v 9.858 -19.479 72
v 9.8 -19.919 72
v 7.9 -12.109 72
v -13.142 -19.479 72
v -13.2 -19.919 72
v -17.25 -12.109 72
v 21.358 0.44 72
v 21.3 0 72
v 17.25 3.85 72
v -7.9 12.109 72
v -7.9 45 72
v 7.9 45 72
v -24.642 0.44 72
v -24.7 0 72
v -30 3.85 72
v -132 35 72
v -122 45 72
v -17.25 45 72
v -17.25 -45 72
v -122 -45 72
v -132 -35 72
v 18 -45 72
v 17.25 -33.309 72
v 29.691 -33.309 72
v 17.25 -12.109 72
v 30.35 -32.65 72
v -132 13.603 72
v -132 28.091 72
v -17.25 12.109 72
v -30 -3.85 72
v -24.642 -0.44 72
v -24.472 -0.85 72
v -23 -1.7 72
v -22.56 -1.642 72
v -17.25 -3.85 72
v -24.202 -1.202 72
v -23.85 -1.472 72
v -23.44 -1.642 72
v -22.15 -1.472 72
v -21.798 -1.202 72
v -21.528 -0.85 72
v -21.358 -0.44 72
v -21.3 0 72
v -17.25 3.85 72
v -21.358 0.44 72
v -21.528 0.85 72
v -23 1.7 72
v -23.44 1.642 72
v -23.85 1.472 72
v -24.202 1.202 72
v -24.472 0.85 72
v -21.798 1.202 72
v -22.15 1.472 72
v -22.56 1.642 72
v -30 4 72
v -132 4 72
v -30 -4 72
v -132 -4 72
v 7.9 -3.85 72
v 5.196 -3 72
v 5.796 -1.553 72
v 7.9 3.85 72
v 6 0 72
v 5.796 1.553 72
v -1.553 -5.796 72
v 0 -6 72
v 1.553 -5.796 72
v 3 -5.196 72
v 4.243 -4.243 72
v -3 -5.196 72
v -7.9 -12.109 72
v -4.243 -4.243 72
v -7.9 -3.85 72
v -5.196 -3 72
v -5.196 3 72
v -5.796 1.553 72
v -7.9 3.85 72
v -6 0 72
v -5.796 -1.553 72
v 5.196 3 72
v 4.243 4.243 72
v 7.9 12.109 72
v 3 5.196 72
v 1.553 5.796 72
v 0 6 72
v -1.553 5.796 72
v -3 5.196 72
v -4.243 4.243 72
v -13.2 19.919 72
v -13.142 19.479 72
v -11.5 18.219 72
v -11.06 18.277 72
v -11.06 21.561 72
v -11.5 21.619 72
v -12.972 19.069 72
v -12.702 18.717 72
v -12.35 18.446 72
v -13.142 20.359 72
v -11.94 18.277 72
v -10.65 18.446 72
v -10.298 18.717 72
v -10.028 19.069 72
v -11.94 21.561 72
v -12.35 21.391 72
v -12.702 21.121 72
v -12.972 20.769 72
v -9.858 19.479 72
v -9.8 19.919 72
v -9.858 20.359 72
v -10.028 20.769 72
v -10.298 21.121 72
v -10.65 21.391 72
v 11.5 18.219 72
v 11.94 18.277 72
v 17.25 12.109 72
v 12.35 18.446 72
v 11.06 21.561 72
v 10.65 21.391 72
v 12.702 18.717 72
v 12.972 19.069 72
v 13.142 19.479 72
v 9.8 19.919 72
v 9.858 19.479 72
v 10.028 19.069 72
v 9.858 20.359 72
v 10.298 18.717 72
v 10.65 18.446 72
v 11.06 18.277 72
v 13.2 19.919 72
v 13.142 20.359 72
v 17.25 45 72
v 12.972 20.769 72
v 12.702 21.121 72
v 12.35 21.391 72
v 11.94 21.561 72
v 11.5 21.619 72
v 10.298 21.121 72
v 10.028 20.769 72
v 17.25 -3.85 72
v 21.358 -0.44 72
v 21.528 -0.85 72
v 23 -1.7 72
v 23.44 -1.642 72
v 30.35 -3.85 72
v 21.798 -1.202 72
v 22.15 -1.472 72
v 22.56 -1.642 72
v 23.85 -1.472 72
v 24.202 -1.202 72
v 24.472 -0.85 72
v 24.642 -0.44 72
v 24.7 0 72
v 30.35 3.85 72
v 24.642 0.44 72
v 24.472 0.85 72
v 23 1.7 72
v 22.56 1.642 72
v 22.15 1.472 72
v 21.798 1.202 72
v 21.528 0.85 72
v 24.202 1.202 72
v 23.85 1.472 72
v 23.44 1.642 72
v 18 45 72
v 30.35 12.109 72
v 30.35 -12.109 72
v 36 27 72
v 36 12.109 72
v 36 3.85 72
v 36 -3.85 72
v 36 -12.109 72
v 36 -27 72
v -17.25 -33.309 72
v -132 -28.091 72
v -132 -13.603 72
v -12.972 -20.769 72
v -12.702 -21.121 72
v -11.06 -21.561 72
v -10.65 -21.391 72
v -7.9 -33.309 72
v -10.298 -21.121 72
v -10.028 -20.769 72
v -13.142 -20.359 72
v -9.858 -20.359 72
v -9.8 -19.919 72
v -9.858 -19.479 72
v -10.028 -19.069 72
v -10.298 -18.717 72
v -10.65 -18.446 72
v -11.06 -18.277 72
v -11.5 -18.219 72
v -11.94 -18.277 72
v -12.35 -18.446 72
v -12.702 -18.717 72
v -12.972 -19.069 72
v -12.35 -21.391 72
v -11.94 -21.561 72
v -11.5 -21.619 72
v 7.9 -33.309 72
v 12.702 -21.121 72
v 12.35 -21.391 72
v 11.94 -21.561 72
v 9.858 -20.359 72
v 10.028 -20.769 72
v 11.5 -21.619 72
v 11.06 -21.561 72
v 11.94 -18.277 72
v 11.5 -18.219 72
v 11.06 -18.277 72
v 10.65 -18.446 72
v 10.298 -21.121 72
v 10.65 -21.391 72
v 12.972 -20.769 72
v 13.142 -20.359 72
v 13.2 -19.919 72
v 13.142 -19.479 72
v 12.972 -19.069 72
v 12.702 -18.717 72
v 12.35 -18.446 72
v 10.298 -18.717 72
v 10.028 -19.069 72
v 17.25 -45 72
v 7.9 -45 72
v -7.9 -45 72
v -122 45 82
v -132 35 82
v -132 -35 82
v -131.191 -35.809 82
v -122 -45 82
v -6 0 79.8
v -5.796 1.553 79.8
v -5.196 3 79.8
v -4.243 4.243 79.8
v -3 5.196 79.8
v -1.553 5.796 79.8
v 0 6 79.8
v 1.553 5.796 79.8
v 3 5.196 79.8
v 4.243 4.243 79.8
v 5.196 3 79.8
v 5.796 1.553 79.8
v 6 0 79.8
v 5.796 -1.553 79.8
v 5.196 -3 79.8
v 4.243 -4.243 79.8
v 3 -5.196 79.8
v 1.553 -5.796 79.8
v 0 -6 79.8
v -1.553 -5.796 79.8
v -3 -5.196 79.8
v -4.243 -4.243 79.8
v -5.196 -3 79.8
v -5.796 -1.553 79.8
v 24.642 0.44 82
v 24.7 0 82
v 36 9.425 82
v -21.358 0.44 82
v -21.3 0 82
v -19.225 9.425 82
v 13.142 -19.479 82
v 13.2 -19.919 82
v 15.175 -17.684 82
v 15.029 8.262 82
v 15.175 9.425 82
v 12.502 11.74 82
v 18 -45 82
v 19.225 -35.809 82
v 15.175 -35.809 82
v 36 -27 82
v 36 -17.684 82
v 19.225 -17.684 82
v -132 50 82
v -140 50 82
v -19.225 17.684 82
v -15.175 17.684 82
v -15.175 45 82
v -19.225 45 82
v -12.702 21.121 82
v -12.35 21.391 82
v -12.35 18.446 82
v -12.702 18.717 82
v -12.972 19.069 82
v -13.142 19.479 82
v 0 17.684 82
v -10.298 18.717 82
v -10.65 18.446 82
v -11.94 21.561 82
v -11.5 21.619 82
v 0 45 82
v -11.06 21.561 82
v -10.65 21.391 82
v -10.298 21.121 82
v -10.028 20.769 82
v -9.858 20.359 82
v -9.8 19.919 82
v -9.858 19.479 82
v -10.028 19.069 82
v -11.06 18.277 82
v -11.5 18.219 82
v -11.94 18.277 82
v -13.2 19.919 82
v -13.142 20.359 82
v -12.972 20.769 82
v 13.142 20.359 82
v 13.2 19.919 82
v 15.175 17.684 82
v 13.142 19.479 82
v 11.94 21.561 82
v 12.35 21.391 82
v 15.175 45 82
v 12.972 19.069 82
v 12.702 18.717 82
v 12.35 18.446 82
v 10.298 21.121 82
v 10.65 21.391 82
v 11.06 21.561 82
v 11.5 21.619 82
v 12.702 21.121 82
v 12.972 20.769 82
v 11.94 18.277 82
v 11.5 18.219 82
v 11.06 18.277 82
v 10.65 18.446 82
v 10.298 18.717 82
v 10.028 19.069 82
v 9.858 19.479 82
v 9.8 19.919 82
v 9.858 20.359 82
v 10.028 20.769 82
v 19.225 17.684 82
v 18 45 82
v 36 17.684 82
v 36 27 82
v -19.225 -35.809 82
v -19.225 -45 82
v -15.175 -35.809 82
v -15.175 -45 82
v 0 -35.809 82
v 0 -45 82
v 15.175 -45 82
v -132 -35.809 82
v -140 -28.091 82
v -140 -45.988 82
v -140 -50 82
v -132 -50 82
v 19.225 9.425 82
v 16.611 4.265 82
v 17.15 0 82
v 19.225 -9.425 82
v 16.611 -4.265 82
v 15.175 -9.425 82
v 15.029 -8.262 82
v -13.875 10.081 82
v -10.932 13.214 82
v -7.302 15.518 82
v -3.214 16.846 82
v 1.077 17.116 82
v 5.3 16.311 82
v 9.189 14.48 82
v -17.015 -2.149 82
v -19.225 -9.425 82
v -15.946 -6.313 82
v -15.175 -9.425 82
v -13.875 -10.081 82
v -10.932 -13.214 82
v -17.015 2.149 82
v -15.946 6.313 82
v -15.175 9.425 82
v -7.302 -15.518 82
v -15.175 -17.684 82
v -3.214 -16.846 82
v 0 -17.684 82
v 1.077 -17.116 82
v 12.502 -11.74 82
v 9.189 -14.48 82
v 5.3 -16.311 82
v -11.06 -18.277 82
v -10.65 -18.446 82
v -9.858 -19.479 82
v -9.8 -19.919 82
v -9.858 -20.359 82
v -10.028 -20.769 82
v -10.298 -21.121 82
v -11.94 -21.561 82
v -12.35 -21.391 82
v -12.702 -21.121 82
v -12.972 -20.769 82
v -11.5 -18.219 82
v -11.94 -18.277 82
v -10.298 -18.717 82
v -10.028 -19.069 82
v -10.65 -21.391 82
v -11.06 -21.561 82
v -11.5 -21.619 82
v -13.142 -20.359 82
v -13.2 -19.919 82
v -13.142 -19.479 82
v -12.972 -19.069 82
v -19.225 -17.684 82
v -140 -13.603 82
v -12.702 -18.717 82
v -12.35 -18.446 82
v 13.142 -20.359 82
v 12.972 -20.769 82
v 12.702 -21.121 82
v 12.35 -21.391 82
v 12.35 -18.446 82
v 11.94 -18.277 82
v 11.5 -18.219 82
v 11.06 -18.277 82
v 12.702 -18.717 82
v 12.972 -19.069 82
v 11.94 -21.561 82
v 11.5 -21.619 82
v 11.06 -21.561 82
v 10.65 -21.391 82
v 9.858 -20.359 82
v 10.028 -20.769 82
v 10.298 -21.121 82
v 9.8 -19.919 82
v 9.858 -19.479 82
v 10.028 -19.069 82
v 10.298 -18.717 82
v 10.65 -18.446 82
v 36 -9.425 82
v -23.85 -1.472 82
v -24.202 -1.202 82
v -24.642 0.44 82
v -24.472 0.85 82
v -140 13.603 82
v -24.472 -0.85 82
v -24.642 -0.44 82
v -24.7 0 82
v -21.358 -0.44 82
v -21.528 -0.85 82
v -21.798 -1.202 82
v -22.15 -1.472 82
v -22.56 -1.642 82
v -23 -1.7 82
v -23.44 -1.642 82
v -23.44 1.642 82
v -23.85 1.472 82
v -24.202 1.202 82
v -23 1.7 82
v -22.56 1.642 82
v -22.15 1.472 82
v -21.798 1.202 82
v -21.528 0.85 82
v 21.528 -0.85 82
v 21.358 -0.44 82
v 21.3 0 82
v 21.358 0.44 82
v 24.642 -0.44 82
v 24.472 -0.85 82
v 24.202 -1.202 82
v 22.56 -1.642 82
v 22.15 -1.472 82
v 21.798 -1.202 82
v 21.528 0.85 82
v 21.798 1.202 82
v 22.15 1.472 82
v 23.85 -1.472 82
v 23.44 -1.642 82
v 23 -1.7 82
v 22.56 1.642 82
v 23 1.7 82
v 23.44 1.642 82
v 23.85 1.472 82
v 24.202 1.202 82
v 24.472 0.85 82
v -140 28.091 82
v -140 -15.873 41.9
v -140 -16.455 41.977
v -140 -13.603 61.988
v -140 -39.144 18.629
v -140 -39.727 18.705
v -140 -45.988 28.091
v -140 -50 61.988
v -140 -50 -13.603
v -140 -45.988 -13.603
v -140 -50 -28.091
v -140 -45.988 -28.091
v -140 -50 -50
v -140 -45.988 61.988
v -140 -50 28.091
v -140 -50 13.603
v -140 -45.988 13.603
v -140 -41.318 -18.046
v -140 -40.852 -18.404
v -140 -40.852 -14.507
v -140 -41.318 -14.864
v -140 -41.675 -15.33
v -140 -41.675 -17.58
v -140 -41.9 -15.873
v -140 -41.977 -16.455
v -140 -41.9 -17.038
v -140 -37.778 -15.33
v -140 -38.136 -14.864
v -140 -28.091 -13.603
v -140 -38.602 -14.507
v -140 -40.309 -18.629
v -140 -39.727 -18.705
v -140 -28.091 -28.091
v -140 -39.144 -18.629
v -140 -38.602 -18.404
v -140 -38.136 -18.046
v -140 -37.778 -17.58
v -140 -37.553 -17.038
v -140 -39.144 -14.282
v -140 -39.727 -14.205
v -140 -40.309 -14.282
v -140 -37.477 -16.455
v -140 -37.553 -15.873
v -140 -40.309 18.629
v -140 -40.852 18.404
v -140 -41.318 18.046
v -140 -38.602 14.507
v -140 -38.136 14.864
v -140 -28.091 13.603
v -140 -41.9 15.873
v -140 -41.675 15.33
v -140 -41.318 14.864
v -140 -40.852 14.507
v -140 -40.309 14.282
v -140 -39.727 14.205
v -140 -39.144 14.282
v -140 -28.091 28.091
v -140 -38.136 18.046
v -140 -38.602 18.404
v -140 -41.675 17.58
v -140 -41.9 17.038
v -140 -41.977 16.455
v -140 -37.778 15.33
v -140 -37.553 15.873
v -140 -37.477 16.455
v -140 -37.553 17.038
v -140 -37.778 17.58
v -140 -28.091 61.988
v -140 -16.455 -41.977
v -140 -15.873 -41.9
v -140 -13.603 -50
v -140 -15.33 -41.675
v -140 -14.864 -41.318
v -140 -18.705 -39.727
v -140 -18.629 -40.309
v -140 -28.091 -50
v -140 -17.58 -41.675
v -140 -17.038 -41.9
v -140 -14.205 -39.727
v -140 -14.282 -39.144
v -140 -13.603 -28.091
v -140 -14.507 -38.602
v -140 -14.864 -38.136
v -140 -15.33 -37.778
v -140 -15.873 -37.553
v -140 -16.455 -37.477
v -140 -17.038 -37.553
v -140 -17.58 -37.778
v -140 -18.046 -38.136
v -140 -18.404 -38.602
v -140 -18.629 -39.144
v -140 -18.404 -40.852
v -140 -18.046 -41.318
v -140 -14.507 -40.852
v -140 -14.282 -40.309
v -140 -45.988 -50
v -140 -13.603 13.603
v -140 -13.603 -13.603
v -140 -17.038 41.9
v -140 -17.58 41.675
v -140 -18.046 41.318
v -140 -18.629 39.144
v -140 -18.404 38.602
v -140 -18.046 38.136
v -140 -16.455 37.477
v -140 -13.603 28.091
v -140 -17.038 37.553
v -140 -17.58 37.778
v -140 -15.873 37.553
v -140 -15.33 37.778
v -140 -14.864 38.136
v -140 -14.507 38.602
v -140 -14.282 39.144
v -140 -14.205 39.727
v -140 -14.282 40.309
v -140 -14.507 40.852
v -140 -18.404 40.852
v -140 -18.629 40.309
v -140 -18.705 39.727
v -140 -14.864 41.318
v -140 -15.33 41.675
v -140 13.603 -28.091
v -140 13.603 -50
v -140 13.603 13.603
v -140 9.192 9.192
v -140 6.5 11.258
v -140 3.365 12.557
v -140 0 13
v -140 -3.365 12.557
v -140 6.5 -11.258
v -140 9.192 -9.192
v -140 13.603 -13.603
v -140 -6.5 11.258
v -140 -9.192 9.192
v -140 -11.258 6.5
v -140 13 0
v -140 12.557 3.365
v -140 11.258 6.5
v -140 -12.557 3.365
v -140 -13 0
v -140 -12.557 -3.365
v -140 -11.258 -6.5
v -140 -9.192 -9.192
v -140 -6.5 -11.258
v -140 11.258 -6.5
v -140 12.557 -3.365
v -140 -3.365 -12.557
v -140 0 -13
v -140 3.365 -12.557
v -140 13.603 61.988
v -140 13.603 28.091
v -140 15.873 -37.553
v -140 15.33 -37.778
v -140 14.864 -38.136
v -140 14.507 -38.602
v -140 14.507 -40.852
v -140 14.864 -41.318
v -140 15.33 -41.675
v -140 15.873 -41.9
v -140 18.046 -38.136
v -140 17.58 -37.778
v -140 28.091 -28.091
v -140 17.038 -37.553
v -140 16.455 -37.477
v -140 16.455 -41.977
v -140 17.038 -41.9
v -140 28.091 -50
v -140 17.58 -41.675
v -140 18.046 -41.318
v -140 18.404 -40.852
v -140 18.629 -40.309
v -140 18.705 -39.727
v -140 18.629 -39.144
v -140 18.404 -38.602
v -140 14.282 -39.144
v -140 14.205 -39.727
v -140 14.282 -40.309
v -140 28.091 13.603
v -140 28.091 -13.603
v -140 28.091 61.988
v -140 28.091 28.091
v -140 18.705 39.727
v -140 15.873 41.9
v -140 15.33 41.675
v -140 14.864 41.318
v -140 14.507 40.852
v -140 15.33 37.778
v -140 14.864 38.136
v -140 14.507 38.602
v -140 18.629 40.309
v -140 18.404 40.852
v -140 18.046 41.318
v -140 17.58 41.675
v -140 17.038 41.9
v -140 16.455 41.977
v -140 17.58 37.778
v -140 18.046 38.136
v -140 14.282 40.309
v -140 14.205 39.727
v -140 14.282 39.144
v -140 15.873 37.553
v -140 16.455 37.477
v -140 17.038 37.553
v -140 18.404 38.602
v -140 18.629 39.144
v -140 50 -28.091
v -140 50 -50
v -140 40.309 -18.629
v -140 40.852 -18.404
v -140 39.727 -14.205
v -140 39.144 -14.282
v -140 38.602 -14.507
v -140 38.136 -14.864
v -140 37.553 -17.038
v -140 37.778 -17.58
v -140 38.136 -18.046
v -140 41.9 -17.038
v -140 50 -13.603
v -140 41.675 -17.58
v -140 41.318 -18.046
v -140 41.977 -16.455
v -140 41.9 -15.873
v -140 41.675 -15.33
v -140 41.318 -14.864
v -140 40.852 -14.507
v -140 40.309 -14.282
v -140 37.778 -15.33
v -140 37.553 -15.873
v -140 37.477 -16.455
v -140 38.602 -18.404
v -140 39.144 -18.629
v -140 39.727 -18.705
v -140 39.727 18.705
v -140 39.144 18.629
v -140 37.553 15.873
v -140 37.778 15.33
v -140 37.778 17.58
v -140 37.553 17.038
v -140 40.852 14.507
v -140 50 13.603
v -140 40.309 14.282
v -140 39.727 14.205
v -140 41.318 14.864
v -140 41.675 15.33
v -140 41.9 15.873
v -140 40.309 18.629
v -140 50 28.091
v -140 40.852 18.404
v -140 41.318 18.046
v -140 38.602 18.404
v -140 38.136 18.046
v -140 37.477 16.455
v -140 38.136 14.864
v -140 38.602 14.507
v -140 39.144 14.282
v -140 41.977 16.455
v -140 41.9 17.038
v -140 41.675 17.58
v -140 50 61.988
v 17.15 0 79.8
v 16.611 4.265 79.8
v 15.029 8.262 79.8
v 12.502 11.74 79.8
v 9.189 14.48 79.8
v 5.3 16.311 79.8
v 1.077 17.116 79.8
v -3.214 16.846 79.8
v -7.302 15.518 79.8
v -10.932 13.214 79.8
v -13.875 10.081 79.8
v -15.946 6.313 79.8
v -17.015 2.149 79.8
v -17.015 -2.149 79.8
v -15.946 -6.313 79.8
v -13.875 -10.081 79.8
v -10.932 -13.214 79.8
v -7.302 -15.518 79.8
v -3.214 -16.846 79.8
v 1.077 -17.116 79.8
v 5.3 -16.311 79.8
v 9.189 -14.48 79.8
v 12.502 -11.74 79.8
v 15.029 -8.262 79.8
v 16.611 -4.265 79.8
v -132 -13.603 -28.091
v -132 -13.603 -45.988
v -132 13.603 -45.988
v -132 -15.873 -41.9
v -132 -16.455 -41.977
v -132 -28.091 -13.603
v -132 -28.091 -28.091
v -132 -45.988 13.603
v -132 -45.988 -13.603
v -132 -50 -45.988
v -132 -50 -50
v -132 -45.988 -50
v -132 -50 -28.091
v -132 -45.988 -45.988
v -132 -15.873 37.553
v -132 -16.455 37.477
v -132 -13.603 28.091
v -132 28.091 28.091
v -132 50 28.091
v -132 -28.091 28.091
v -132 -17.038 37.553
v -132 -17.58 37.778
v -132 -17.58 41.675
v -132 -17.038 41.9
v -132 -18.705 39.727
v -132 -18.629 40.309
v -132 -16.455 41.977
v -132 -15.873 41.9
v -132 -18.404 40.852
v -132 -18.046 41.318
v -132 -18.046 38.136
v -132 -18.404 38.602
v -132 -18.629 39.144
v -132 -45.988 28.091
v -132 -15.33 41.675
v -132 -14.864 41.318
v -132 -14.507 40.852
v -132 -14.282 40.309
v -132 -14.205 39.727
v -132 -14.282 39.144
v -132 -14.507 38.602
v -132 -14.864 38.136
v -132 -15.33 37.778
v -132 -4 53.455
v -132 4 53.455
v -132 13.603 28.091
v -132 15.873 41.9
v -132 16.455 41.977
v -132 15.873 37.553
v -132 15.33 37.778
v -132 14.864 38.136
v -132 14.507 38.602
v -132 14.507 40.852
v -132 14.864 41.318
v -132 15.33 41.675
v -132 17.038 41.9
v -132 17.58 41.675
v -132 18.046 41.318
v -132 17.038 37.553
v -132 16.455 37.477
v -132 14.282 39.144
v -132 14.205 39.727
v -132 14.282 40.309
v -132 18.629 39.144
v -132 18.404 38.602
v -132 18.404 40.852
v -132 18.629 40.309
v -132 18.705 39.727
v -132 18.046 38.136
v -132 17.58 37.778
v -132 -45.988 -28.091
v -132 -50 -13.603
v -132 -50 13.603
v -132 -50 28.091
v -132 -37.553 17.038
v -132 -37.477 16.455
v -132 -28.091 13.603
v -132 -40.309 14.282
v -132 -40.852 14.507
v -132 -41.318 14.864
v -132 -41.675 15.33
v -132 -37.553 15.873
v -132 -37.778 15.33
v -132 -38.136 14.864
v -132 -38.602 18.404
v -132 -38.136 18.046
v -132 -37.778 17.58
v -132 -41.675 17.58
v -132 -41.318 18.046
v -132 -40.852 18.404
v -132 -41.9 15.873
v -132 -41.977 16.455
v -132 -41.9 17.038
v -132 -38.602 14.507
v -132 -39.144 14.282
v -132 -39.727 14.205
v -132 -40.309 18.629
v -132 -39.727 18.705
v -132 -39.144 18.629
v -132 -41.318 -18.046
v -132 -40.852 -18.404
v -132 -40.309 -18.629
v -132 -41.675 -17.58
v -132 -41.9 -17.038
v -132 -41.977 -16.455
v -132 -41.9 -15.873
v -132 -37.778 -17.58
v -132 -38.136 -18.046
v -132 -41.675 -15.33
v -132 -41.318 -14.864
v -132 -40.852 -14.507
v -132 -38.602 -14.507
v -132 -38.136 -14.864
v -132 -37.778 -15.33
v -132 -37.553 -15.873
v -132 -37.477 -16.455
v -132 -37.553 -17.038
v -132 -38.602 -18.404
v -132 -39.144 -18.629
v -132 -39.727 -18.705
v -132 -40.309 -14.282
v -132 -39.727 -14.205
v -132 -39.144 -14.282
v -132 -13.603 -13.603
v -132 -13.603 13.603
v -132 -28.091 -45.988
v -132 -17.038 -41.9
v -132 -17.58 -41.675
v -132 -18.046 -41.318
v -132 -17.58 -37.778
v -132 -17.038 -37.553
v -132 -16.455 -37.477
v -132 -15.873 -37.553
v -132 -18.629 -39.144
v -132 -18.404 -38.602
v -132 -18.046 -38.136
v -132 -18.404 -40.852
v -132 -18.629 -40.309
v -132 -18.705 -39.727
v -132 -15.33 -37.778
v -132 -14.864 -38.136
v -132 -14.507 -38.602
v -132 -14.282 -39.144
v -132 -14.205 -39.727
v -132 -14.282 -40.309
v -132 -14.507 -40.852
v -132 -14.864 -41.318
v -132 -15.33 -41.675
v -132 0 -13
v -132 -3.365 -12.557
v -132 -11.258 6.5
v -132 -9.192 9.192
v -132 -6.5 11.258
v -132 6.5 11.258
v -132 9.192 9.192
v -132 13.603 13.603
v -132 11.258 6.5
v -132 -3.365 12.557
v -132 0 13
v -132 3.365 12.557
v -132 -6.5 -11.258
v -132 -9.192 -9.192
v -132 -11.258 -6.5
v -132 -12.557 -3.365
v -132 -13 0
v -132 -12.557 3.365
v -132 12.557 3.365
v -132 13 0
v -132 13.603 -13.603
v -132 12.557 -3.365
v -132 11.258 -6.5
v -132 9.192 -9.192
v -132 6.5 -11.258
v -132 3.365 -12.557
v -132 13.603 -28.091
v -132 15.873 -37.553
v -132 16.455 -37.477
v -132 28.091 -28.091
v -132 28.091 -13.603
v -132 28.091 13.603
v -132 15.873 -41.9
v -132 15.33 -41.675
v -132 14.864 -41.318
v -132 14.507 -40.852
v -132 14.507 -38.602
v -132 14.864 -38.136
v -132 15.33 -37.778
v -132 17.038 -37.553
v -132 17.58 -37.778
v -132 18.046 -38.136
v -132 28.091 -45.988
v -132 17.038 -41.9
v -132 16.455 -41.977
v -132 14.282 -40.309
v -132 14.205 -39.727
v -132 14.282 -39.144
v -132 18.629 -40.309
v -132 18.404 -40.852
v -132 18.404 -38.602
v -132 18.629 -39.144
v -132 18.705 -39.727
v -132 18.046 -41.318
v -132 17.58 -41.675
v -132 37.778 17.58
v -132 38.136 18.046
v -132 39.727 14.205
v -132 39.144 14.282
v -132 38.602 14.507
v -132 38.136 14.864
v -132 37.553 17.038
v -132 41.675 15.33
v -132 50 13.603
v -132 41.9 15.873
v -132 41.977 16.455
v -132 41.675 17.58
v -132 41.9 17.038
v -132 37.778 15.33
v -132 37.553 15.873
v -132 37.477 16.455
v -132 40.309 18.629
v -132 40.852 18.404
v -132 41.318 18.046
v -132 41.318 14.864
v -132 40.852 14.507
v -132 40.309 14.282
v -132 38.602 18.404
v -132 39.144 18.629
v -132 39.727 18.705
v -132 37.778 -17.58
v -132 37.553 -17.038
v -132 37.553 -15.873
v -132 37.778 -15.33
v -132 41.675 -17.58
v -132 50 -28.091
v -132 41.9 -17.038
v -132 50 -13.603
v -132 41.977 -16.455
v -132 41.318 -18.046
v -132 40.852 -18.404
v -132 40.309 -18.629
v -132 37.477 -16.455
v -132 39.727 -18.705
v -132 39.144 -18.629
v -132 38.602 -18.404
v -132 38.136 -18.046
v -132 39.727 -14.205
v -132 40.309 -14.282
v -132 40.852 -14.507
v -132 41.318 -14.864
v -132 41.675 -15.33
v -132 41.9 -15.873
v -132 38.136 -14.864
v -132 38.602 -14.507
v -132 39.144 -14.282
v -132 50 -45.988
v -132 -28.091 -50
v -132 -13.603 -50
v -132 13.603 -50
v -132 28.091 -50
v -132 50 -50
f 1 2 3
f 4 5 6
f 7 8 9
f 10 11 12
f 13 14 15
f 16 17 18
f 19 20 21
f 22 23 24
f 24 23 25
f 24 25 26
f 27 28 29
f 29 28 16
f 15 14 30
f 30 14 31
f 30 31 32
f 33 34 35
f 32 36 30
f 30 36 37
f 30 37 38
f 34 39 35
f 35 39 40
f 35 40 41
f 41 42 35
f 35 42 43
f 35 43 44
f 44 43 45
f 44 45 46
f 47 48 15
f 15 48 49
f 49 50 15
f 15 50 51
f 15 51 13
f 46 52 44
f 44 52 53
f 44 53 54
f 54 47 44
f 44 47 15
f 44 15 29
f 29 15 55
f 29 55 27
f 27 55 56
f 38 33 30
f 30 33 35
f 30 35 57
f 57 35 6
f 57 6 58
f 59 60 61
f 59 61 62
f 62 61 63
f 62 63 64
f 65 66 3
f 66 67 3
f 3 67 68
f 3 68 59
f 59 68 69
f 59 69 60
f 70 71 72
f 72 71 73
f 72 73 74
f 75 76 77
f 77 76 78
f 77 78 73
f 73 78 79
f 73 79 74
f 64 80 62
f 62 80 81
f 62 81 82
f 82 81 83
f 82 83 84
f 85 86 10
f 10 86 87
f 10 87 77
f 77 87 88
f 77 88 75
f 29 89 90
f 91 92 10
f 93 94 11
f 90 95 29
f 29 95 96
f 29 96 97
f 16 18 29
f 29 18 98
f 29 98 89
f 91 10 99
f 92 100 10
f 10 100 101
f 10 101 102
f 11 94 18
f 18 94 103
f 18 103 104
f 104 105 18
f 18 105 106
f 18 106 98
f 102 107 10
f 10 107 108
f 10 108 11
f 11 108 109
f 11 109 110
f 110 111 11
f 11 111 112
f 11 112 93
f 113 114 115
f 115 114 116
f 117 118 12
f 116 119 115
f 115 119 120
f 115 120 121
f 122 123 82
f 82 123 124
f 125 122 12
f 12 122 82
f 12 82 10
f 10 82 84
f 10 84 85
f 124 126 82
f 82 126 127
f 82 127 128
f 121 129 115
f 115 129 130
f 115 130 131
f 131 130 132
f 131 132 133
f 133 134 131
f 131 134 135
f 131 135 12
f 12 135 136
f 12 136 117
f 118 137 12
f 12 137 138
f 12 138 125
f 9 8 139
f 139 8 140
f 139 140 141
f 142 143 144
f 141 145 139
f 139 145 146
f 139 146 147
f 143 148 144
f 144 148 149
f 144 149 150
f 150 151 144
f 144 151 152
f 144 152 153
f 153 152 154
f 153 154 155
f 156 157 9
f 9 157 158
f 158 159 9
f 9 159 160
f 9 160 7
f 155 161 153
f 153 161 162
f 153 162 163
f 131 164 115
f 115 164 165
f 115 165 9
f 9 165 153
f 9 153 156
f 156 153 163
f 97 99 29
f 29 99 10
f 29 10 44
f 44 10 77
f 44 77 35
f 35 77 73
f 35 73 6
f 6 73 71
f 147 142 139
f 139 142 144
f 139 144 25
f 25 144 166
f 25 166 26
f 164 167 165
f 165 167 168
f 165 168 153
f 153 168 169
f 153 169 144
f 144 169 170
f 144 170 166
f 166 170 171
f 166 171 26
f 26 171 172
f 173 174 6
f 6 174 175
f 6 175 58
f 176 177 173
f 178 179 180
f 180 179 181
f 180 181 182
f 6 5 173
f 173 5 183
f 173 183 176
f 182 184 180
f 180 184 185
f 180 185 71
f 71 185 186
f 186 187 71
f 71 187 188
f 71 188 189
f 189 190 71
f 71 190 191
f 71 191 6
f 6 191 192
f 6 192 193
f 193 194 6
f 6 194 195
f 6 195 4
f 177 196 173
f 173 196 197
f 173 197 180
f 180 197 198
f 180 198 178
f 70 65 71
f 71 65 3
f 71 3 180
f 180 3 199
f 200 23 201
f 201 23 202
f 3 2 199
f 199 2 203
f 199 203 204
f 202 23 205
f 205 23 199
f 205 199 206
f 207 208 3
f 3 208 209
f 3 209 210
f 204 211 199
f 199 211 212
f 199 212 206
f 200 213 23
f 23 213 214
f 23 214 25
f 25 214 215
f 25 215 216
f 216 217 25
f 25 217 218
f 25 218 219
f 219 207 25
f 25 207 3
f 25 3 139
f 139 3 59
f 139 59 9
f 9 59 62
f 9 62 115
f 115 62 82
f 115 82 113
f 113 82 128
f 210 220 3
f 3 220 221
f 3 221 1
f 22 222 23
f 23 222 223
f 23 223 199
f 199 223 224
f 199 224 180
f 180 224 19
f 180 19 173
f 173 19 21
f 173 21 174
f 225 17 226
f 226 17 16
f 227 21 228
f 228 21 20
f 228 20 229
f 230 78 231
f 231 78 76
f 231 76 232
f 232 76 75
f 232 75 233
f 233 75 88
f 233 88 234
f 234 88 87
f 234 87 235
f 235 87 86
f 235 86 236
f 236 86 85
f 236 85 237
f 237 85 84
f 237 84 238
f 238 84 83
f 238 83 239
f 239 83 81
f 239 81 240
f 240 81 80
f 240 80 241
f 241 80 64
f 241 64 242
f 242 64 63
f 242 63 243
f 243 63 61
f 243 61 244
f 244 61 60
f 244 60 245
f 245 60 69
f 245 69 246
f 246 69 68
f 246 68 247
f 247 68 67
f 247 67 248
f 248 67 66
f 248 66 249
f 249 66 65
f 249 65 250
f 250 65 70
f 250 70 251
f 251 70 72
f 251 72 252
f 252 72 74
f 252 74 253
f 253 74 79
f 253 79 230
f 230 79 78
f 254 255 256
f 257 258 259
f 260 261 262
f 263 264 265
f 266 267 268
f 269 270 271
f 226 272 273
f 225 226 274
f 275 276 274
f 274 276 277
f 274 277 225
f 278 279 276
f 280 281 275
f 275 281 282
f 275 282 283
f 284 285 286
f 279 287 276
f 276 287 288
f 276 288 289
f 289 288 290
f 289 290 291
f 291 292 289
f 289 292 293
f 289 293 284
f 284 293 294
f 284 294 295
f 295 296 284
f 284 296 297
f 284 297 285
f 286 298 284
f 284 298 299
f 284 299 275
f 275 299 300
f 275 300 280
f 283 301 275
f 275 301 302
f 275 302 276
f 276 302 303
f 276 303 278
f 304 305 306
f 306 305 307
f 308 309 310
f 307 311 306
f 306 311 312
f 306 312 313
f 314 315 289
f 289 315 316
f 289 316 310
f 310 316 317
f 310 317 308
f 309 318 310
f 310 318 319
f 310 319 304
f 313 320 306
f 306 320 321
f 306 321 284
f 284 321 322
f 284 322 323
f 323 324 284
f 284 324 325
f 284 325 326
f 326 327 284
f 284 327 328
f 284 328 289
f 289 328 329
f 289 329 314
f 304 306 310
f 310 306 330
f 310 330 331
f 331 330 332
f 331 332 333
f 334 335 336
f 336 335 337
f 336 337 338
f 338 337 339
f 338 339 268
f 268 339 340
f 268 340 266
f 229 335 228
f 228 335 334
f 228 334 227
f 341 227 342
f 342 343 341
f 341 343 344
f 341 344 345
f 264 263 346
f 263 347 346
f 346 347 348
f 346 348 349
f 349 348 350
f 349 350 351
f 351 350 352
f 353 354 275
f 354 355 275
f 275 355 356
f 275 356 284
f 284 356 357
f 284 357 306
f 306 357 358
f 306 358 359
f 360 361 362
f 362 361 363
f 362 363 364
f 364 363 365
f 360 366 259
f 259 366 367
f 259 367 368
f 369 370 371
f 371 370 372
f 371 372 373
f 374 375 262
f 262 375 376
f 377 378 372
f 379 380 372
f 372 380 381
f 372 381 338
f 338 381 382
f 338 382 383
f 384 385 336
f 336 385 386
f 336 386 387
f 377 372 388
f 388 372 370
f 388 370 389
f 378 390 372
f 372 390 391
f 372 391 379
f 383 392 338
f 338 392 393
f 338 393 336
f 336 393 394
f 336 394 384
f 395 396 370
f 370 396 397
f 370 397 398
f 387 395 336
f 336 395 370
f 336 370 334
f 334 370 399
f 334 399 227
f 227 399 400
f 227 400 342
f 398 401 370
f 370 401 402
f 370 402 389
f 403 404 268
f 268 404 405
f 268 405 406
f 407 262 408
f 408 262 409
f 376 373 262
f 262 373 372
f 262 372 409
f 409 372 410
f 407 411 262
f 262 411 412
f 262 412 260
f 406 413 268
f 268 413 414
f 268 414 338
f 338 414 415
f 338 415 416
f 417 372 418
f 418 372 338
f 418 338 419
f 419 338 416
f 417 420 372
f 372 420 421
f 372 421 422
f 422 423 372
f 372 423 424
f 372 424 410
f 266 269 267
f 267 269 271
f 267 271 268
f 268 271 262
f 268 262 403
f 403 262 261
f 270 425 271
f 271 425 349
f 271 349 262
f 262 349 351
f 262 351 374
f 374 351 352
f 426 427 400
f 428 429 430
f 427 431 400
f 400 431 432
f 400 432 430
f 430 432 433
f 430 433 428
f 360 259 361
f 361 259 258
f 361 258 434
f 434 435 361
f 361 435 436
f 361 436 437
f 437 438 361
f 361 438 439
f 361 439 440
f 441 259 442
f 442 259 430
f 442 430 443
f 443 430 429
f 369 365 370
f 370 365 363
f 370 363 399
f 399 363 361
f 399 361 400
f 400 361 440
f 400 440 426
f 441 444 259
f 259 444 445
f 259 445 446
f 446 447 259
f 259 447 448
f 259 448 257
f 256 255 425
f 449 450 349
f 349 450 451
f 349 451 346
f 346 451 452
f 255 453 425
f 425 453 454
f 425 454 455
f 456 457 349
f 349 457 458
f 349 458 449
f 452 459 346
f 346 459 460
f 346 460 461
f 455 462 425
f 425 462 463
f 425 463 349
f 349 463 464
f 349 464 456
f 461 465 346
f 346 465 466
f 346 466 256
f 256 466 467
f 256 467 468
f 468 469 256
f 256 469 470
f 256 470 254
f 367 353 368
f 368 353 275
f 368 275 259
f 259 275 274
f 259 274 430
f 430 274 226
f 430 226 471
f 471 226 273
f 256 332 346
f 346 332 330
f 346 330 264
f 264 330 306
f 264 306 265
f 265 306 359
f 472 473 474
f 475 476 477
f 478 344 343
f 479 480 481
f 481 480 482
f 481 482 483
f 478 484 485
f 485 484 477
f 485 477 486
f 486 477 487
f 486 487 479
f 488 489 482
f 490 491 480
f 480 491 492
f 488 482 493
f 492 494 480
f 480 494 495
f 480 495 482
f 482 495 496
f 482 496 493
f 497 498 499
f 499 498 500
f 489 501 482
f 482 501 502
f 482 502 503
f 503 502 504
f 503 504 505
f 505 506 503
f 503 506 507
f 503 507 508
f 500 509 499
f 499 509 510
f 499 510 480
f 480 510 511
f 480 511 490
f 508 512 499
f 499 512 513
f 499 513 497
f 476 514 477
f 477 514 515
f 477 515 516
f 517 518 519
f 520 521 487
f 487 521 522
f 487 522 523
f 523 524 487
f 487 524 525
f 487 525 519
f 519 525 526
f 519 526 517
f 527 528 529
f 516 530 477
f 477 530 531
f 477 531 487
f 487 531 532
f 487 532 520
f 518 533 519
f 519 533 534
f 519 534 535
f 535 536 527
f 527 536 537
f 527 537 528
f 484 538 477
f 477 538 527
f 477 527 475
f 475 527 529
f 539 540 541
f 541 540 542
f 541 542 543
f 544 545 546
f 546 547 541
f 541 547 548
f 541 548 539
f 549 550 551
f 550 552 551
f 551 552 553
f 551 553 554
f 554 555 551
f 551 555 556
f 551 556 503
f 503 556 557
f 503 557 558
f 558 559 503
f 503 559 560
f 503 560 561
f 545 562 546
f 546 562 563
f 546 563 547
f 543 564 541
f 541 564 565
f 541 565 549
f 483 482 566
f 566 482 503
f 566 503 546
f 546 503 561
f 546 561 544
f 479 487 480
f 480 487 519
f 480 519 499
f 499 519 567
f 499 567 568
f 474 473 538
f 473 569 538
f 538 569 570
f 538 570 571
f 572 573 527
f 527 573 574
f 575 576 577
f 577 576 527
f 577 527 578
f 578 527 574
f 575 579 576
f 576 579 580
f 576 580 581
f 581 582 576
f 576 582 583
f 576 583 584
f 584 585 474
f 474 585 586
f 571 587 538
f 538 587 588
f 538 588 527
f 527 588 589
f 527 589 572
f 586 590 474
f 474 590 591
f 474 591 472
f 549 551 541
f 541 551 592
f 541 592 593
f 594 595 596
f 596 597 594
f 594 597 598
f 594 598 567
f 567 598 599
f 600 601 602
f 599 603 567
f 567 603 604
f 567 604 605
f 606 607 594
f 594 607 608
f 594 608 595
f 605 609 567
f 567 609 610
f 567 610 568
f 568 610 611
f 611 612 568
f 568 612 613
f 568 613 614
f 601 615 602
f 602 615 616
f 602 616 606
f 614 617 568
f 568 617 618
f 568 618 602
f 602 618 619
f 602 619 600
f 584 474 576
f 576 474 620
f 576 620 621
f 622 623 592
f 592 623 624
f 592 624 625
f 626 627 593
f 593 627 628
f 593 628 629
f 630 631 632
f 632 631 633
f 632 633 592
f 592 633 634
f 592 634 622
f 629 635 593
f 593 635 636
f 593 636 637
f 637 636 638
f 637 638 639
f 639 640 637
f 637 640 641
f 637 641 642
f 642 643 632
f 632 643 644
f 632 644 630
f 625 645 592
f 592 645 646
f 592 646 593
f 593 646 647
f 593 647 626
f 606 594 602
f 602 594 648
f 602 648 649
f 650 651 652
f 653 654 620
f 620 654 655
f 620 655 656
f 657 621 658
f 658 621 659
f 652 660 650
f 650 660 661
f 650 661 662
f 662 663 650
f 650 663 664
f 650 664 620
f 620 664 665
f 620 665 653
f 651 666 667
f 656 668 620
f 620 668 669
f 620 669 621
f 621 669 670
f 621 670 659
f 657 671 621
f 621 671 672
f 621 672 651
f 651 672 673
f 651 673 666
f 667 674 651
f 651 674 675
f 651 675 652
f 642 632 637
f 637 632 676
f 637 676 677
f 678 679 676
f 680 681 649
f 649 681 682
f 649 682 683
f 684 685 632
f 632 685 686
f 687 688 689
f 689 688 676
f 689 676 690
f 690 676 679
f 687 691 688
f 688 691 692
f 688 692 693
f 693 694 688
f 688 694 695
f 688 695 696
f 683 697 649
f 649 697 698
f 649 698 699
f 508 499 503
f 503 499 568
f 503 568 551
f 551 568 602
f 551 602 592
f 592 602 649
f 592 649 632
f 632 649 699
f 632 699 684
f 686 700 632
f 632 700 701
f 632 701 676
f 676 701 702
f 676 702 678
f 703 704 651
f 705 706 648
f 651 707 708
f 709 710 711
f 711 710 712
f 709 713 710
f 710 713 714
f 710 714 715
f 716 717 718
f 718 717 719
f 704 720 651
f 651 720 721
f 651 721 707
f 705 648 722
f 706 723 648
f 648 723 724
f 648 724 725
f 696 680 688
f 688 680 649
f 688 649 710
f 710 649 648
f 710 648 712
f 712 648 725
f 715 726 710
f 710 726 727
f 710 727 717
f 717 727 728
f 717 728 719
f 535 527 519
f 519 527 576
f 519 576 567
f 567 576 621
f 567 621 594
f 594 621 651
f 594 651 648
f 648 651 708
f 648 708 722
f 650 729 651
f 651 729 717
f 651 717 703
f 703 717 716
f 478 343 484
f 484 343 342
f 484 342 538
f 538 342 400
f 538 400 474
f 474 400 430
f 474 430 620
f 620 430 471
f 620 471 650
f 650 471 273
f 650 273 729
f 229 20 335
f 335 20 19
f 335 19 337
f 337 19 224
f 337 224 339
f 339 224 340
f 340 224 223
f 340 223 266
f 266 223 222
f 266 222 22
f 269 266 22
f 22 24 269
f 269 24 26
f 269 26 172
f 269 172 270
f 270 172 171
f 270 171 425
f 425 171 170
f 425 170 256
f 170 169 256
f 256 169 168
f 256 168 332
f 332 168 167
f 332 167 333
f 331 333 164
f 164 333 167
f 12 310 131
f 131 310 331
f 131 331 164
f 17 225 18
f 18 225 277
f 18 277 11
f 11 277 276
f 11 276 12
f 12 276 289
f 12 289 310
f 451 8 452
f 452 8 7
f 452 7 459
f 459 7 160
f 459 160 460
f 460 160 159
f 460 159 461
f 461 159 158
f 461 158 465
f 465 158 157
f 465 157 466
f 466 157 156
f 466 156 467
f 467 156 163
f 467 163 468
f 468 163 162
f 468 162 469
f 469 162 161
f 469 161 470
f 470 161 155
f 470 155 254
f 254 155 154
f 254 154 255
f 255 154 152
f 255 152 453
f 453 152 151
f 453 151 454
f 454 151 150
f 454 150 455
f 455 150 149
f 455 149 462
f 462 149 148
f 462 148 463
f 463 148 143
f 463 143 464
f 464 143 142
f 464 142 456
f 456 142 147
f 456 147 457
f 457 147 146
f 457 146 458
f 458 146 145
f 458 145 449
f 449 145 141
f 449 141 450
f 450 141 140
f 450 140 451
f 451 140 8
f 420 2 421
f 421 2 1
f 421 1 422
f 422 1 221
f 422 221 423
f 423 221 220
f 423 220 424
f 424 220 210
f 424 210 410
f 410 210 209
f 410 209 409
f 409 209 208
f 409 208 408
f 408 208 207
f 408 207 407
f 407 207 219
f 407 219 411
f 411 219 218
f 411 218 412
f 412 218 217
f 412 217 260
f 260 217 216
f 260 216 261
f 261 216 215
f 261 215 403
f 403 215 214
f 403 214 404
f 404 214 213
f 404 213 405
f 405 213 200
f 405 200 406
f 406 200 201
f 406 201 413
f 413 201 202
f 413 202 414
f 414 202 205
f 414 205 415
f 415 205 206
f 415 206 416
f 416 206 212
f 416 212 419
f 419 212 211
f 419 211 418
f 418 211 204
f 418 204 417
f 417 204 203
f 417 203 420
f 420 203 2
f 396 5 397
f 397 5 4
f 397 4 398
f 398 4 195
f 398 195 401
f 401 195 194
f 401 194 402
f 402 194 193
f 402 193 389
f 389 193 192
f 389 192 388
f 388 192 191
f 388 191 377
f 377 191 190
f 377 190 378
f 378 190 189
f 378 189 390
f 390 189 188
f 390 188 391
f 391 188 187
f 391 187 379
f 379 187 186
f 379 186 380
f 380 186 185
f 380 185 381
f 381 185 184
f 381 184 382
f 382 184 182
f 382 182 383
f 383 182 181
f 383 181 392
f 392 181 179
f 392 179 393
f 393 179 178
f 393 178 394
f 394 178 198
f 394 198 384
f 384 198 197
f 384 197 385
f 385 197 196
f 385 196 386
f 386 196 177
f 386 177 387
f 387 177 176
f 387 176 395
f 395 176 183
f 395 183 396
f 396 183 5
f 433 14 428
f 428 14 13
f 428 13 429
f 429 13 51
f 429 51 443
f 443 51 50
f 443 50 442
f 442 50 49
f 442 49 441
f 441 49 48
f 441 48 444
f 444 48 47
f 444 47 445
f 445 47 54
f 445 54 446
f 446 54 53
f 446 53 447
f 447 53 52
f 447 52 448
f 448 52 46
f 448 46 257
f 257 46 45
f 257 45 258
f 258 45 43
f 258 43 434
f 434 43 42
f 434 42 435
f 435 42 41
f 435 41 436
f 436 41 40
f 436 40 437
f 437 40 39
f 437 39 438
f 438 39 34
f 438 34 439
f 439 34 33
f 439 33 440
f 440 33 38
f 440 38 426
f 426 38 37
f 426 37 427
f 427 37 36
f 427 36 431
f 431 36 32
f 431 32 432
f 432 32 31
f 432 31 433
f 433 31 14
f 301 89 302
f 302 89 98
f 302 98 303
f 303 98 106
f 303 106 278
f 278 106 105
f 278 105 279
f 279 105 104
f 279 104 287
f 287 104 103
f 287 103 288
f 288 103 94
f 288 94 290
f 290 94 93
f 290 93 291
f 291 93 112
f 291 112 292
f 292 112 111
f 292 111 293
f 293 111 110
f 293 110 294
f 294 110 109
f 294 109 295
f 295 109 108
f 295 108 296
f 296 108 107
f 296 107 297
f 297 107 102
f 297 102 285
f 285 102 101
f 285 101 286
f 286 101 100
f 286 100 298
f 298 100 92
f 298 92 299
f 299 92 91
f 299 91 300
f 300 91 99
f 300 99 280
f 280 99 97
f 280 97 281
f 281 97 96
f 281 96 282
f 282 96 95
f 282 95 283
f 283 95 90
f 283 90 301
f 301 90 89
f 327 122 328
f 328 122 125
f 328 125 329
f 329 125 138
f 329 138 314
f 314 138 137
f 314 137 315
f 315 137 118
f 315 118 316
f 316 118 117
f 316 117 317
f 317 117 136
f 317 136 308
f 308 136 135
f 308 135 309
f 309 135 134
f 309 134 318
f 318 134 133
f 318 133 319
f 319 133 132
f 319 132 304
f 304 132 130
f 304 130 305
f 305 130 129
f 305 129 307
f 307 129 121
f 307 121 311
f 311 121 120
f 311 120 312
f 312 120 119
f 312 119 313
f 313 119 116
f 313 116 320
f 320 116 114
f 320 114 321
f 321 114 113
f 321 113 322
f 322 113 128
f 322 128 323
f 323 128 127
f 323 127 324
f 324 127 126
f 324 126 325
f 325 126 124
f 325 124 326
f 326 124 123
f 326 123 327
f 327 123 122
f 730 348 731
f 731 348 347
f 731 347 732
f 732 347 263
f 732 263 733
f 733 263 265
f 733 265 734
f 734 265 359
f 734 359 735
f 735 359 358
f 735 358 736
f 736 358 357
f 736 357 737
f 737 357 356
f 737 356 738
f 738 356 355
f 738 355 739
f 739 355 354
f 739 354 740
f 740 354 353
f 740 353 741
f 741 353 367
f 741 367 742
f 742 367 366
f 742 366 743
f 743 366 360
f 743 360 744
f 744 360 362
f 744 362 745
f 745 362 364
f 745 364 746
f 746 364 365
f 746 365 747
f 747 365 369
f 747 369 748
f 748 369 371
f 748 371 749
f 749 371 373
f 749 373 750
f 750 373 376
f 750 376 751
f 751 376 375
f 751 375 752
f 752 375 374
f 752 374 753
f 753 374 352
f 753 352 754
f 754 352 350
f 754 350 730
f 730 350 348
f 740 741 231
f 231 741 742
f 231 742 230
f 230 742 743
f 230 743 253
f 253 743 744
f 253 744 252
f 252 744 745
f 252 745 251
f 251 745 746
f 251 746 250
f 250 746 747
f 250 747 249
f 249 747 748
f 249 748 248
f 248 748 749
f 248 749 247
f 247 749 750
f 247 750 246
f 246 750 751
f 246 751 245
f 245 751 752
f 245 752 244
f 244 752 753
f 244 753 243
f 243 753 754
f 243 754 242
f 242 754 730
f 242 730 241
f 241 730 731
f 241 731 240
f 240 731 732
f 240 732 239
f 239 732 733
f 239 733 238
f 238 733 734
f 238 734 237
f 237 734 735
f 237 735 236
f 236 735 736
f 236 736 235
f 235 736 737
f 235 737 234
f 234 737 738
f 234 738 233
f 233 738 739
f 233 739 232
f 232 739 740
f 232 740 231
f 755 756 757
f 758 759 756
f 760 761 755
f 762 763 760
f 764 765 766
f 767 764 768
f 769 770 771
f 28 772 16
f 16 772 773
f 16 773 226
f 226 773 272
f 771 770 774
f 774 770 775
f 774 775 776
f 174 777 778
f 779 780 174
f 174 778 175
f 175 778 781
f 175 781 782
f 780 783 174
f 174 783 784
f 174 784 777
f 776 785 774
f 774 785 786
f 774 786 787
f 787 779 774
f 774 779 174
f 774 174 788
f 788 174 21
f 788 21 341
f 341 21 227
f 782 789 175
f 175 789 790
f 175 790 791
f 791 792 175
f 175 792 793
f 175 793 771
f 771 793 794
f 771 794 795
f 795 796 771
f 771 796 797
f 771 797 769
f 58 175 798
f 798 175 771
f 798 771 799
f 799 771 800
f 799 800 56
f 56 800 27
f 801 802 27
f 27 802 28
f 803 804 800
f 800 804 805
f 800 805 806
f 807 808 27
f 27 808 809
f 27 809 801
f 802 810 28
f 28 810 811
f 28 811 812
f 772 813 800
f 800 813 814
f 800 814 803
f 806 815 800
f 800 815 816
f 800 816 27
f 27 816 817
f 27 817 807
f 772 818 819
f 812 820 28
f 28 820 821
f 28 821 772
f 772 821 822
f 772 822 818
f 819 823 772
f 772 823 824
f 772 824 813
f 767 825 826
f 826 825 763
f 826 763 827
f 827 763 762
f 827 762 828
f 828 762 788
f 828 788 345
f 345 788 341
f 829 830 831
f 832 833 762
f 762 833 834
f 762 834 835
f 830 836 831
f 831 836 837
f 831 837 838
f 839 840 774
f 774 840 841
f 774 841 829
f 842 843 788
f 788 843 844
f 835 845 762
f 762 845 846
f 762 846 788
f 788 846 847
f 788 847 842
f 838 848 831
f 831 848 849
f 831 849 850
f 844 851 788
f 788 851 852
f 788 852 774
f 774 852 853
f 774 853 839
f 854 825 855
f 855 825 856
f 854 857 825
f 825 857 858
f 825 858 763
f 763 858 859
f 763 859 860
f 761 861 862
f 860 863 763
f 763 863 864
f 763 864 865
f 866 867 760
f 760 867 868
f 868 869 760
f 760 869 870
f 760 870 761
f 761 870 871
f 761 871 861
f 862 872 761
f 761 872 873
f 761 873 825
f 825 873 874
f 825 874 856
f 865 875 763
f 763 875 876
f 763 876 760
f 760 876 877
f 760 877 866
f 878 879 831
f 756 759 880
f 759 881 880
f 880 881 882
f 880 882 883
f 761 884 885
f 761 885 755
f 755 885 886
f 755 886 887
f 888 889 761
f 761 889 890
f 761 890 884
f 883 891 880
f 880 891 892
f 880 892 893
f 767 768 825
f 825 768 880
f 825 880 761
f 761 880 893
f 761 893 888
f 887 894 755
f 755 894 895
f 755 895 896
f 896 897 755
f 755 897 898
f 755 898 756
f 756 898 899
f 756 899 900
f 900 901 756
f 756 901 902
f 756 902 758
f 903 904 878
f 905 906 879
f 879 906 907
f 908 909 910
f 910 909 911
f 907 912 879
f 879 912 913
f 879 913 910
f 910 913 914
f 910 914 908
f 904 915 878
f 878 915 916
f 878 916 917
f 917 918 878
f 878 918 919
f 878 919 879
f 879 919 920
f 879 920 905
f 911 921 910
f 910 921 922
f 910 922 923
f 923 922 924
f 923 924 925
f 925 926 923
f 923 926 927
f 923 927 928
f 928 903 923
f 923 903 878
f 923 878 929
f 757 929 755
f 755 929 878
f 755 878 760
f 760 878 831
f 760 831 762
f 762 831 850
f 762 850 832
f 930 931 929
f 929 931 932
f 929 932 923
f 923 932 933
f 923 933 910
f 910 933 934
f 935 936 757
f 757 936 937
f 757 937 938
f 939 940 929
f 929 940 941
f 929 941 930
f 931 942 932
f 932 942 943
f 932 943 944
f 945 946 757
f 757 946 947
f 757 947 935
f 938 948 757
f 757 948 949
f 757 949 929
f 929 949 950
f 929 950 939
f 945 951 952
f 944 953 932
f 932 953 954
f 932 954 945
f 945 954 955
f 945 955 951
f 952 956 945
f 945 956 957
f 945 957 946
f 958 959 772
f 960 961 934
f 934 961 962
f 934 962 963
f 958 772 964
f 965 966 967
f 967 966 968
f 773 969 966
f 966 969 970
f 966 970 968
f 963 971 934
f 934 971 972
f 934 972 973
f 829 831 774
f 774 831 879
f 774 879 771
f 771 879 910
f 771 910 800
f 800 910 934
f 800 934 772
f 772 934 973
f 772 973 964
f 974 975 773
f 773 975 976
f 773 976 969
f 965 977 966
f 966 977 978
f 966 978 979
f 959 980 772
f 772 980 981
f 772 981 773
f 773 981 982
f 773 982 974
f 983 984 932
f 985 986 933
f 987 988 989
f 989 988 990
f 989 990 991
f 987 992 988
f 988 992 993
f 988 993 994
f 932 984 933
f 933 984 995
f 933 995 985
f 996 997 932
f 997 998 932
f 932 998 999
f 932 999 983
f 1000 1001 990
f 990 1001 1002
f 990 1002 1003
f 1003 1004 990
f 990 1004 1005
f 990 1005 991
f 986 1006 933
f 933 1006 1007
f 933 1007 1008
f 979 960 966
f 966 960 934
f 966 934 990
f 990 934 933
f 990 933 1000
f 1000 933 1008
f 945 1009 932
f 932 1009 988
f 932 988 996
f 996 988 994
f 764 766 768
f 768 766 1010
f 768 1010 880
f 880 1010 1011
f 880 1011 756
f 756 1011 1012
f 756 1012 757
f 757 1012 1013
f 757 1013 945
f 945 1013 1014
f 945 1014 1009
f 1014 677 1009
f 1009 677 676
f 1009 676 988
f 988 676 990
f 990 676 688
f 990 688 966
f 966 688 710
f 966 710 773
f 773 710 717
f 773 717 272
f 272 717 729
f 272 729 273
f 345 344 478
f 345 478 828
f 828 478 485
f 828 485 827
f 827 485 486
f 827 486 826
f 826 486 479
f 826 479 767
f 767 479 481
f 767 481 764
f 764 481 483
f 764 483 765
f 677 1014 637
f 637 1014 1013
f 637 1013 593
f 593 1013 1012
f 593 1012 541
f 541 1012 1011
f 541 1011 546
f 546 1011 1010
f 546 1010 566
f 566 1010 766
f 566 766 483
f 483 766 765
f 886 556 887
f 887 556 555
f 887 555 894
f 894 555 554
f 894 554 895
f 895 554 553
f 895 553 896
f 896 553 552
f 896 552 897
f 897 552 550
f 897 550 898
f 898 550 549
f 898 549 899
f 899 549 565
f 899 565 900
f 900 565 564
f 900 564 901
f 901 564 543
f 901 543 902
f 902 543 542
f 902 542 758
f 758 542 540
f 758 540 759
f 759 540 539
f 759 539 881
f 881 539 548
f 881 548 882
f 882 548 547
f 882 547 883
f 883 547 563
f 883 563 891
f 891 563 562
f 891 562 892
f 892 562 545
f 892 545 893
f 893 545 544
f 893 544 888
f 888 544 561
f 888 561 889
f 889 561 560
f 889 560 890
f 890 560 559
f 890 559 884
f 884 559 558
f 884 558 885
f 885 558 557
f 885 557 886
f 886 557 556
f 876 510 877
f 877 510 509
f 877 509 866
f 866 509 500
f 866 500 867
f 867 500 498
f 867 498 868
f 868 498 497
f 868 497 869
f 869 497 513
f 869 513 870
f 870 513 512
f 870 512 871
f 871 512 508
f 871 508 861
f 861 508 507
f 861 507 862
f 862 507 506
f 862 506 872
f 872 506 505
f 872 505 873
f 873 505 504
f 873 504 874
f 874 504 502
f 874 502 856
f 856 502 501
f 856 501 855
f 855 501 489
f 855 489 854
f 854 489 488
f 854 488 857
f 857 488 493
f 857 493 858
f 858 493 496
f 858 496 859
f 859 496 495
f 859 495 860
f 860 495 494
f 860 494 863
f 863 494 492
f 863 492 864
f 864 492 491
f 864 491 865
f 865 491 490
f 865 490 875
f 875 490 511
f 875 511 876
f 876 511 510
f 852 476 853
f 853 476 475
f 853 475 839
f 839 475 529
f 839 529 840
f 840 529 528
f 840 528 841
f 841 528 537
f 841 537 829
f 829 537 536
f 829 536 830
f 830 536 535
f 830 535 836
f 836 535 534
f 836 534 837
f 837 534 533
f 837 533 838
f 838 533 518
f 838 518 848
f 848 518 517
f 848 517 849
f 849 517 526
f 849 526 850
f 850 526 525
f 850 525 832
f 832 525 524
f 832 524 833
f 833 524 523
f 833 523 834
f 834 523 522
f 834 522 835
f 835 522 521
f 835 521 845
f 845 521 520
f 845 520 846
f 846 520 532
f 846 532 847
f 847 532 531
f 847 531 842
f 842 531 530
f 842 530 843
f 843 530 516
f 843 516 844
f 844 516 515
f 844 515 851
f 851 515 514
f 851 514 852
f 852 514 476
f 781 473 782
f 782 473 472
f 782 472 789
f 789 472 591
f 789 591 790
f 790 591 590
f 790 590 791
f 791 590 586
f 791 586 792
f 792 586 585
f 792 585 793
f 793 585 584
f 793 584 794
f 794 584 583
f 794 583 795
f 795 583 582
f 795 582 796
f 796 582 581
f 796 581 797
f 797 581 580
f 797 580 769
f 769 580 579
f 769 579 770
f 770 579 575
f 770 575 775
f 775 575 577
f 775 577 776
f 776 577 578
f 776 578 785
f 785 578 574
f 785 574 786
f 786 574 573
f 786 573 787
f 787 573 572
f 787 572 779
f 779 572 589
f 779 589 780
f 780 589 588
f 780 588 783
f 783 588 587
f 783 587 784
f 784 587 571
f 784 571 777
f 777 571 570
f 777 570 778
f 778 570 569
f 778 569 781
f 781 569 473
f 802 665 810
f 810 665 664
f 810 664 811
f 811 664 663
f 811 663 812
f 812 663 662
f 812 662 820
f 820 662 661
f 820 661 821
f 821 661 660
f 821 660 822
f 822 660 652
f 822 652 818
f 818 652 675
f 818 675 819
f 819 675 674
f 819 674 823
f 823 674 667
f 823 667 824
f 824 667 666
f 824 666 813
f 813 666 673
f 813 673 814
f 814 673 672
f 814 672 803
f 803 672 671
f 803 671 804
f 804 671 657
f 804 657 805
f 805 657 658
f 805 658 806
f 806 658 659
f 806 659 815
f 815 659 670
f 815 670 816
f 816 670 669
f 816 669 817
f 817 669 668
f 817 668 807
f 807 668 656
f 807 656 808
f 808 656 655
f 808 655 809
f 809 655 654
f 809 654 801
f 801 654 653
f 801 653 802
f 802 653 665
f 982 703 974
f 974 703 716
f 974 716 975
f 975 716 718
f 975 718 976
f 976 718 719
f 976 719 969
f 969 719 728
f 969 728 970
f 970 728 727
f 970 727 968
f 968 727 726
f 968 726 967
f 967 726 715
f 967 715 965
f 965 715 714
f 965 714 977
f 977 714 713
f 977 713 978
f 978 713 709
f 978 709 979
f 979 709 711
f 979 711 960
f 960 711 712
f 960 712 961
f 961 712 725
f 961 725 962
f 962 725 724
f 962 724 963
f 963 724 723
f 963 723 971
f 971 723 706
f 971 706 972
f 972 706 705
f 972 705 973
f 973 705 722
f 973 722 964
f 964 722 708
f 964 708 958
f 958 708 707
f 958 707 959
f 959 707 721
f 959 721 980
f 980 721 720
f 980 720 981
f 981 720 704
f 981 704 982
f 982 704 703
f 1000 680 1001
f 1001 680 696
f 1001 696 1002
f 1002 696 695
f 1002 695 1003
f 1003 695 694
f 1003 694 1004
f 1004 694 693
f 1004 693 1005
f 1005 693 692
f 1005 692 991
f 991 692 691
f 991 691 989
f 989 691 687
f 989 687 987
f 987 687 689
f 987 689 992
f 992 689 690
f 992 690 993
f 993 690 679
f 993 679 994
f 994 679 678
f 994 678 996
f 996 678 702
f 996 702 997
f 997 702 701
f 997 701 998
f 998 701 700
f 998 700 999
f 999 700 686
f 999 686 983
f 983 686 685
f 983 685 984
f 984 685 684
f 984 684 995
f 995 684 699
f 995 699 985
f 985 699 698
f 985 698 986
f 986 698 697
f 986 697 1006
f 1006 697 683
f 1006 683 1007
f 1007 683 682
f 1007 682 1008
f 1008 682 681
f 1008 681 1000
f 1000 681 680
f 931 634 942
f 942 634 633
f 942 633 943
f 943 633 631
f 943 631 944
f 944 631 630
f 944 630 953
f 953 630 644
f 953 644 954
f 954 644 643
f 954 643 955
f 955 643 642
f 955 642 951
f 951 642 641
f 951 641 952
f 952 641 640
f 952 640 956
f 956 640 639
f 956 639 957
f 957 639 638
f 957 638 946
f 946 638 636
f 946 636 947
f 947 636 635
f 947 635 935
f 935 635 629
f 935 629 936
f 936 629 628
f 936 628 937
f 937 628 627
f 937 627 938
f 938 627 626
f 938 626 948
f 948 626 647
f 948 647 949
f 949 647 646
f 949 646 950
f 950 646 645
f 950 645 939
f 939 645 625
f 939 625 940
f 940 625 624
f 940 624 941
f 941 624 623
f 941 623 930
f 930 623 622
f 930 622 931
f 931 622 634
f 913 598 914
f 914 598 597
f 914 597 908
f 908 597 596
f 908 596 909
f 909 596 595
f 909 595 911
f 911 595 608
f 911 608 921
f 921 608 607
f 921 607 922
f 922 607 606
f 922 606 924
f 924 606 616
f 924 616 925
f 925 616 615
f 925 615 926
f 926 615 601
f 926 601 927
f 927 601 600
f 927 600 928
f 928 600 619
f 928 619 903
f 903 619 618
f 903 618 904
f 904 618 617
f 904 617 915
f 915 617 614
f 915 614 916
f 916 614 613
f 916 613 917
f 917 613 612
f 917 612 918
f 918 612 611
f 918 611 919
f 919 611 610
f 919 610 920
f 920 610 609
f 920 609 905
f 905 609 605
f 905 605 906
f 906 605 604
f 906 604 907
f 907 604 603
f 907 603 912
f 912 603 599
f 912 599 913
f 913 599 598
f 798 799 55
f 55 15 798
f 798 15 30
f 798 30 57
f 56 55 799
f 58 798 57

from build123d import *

# Parameters (mm, degrees)
SK_TOP_PLATE_R         = 1.7
SK_TOP_PLATE_R_2       = 6
TOP_PLATE_DEPTH        = 10
SK_YAW_PILOT_RECESS_R  = 17.15
YAW_PILOT_RECESS_DEPTH = 2.2
SK_BACK_PLATE_W        = 132
SK_BACK_PLATE_H        = 100
SK_BACK_PLATE_R        = 2.25
SK_BACK_PLATE_R_2      = 13
BACK_PLATE_DEPTH       = 8
RIB_DEPTH              = 8


with BuildPart() as part:
    # SK_Top_Plate → Top_Plate (new body)
    with BuildSketch(Plane.XY.offset(72)):
        Polygon((-122, 45), (18, 45), (36, 27), (36, -27), (18, -45), (-122, -45), (-140, -27), (-140, 27), align=None)
        with Locations((23, 0)):
            Circle(SK_TOP_PLATE_R, mode=Mode.SUBTRACT)
        with Locations((11.5, -19.918584287)):
            Circle(SK_TOP_PLATE_R, mode=Mode.SUBTRACT)
        with Locations((-11.5, -19.918584287)):
            Circle(SK_TOP_PLATE_R, mode=Mode.SUBTRACT)
        with Locations((-23, 0)):
            Circle(SK_TOP_PLATE_R, mode=Mode.SUBTRACT)
        with Locations((-11.5, 19.918584287)):
            Circle(SK_TOP_PLATE_R, mode=Mode.SUBTRACT)
        with Locations((11.5, 19.918584287)):
            Circle(SK_TOP_PLATE_R, mode=Mode.SUBTRACT)
        Circle(SK_TOP_PLATE_R_2, mode=Mode.SUBTRACT)
    extrude(amount=TOP_PLATE_DEPTH)

    # SK_Yaw_Pilot_Recess → Yaw_Pilot_Recess (cut)
    with BuildSketch(Plane.XY.offset(82)):
        Circle(SK_YAW_PILOT_RECESS_R)
    extrude(amount=-YAW_PILOT_RECESS_DEPTH, mode=Mode.SUBTRACT)

    # SK_Back_Plate → Back_Plate (add)
    with BuildSketch(Plane(origin=(-140, 0, 0), x_dir=(0, 0, -1), z_dir=(1, 0, 0))):
        with Locations((-16, 0)):
            Rectangle(SK_BACK_PLATE_W, SK_BACK_PLATE_H)
        with Locations((39.726819898, -16.455387592)):
            Circle(SK_BACK_PLATE_R, mode=Mode.SUBTRACT)
        with Locations((16.455387592, -39.726819898)):
            Circle(SK_BACK_PLATE_R, mode=Mode.SUBTRACT)
        with Locations((-16.455387592, -39.726819898)):
            Circle(SK_BACK_PLATE_R, mode=Mode.SUBTRACT)
        with Locations((-39.726819898, -16.455387592)):
            Circle(SK_BACK_PLATE_R, mode=Mode.SUBTRACT)
        with Locations((-39.726819898, 16.455387592)):
            Circle(SK_BACK_PLATE_R, mode=Mode.SUBTRACT)
        with Locations((-16.455387592, 39.726819898)):
            Circle(SK_BACK_PLATE_R, mode=Mode.SUBTRACT)
        with Locations((16.455387592, 39.726819898)):
            Circle(SK_BACK_PLATE_R, mode=Mode.SUBTRACT)
        with Locations((39.726819898, 16.455387592)):
            Circle(SK_BACK_PLATE_R, mode=Mode.SUBTRACT)
        Circle(SK_BACK_PLATE_R_2, mode=Mode.SUBTRACT)
    extrude(amount=BACK_PLATE_DEPTH)

    # SK_Rib → Rib (add)
    with BuildSketch(Plane(origin=(0, -4, 0), x_dir=(1, 0, 0), z_dir=(0, 1, 0))):
        Polygon((-140, -52), (-30, -72), (-140, -72), align=None)
    extrude(amount=RIB_DEPTH)


solid = part.part
